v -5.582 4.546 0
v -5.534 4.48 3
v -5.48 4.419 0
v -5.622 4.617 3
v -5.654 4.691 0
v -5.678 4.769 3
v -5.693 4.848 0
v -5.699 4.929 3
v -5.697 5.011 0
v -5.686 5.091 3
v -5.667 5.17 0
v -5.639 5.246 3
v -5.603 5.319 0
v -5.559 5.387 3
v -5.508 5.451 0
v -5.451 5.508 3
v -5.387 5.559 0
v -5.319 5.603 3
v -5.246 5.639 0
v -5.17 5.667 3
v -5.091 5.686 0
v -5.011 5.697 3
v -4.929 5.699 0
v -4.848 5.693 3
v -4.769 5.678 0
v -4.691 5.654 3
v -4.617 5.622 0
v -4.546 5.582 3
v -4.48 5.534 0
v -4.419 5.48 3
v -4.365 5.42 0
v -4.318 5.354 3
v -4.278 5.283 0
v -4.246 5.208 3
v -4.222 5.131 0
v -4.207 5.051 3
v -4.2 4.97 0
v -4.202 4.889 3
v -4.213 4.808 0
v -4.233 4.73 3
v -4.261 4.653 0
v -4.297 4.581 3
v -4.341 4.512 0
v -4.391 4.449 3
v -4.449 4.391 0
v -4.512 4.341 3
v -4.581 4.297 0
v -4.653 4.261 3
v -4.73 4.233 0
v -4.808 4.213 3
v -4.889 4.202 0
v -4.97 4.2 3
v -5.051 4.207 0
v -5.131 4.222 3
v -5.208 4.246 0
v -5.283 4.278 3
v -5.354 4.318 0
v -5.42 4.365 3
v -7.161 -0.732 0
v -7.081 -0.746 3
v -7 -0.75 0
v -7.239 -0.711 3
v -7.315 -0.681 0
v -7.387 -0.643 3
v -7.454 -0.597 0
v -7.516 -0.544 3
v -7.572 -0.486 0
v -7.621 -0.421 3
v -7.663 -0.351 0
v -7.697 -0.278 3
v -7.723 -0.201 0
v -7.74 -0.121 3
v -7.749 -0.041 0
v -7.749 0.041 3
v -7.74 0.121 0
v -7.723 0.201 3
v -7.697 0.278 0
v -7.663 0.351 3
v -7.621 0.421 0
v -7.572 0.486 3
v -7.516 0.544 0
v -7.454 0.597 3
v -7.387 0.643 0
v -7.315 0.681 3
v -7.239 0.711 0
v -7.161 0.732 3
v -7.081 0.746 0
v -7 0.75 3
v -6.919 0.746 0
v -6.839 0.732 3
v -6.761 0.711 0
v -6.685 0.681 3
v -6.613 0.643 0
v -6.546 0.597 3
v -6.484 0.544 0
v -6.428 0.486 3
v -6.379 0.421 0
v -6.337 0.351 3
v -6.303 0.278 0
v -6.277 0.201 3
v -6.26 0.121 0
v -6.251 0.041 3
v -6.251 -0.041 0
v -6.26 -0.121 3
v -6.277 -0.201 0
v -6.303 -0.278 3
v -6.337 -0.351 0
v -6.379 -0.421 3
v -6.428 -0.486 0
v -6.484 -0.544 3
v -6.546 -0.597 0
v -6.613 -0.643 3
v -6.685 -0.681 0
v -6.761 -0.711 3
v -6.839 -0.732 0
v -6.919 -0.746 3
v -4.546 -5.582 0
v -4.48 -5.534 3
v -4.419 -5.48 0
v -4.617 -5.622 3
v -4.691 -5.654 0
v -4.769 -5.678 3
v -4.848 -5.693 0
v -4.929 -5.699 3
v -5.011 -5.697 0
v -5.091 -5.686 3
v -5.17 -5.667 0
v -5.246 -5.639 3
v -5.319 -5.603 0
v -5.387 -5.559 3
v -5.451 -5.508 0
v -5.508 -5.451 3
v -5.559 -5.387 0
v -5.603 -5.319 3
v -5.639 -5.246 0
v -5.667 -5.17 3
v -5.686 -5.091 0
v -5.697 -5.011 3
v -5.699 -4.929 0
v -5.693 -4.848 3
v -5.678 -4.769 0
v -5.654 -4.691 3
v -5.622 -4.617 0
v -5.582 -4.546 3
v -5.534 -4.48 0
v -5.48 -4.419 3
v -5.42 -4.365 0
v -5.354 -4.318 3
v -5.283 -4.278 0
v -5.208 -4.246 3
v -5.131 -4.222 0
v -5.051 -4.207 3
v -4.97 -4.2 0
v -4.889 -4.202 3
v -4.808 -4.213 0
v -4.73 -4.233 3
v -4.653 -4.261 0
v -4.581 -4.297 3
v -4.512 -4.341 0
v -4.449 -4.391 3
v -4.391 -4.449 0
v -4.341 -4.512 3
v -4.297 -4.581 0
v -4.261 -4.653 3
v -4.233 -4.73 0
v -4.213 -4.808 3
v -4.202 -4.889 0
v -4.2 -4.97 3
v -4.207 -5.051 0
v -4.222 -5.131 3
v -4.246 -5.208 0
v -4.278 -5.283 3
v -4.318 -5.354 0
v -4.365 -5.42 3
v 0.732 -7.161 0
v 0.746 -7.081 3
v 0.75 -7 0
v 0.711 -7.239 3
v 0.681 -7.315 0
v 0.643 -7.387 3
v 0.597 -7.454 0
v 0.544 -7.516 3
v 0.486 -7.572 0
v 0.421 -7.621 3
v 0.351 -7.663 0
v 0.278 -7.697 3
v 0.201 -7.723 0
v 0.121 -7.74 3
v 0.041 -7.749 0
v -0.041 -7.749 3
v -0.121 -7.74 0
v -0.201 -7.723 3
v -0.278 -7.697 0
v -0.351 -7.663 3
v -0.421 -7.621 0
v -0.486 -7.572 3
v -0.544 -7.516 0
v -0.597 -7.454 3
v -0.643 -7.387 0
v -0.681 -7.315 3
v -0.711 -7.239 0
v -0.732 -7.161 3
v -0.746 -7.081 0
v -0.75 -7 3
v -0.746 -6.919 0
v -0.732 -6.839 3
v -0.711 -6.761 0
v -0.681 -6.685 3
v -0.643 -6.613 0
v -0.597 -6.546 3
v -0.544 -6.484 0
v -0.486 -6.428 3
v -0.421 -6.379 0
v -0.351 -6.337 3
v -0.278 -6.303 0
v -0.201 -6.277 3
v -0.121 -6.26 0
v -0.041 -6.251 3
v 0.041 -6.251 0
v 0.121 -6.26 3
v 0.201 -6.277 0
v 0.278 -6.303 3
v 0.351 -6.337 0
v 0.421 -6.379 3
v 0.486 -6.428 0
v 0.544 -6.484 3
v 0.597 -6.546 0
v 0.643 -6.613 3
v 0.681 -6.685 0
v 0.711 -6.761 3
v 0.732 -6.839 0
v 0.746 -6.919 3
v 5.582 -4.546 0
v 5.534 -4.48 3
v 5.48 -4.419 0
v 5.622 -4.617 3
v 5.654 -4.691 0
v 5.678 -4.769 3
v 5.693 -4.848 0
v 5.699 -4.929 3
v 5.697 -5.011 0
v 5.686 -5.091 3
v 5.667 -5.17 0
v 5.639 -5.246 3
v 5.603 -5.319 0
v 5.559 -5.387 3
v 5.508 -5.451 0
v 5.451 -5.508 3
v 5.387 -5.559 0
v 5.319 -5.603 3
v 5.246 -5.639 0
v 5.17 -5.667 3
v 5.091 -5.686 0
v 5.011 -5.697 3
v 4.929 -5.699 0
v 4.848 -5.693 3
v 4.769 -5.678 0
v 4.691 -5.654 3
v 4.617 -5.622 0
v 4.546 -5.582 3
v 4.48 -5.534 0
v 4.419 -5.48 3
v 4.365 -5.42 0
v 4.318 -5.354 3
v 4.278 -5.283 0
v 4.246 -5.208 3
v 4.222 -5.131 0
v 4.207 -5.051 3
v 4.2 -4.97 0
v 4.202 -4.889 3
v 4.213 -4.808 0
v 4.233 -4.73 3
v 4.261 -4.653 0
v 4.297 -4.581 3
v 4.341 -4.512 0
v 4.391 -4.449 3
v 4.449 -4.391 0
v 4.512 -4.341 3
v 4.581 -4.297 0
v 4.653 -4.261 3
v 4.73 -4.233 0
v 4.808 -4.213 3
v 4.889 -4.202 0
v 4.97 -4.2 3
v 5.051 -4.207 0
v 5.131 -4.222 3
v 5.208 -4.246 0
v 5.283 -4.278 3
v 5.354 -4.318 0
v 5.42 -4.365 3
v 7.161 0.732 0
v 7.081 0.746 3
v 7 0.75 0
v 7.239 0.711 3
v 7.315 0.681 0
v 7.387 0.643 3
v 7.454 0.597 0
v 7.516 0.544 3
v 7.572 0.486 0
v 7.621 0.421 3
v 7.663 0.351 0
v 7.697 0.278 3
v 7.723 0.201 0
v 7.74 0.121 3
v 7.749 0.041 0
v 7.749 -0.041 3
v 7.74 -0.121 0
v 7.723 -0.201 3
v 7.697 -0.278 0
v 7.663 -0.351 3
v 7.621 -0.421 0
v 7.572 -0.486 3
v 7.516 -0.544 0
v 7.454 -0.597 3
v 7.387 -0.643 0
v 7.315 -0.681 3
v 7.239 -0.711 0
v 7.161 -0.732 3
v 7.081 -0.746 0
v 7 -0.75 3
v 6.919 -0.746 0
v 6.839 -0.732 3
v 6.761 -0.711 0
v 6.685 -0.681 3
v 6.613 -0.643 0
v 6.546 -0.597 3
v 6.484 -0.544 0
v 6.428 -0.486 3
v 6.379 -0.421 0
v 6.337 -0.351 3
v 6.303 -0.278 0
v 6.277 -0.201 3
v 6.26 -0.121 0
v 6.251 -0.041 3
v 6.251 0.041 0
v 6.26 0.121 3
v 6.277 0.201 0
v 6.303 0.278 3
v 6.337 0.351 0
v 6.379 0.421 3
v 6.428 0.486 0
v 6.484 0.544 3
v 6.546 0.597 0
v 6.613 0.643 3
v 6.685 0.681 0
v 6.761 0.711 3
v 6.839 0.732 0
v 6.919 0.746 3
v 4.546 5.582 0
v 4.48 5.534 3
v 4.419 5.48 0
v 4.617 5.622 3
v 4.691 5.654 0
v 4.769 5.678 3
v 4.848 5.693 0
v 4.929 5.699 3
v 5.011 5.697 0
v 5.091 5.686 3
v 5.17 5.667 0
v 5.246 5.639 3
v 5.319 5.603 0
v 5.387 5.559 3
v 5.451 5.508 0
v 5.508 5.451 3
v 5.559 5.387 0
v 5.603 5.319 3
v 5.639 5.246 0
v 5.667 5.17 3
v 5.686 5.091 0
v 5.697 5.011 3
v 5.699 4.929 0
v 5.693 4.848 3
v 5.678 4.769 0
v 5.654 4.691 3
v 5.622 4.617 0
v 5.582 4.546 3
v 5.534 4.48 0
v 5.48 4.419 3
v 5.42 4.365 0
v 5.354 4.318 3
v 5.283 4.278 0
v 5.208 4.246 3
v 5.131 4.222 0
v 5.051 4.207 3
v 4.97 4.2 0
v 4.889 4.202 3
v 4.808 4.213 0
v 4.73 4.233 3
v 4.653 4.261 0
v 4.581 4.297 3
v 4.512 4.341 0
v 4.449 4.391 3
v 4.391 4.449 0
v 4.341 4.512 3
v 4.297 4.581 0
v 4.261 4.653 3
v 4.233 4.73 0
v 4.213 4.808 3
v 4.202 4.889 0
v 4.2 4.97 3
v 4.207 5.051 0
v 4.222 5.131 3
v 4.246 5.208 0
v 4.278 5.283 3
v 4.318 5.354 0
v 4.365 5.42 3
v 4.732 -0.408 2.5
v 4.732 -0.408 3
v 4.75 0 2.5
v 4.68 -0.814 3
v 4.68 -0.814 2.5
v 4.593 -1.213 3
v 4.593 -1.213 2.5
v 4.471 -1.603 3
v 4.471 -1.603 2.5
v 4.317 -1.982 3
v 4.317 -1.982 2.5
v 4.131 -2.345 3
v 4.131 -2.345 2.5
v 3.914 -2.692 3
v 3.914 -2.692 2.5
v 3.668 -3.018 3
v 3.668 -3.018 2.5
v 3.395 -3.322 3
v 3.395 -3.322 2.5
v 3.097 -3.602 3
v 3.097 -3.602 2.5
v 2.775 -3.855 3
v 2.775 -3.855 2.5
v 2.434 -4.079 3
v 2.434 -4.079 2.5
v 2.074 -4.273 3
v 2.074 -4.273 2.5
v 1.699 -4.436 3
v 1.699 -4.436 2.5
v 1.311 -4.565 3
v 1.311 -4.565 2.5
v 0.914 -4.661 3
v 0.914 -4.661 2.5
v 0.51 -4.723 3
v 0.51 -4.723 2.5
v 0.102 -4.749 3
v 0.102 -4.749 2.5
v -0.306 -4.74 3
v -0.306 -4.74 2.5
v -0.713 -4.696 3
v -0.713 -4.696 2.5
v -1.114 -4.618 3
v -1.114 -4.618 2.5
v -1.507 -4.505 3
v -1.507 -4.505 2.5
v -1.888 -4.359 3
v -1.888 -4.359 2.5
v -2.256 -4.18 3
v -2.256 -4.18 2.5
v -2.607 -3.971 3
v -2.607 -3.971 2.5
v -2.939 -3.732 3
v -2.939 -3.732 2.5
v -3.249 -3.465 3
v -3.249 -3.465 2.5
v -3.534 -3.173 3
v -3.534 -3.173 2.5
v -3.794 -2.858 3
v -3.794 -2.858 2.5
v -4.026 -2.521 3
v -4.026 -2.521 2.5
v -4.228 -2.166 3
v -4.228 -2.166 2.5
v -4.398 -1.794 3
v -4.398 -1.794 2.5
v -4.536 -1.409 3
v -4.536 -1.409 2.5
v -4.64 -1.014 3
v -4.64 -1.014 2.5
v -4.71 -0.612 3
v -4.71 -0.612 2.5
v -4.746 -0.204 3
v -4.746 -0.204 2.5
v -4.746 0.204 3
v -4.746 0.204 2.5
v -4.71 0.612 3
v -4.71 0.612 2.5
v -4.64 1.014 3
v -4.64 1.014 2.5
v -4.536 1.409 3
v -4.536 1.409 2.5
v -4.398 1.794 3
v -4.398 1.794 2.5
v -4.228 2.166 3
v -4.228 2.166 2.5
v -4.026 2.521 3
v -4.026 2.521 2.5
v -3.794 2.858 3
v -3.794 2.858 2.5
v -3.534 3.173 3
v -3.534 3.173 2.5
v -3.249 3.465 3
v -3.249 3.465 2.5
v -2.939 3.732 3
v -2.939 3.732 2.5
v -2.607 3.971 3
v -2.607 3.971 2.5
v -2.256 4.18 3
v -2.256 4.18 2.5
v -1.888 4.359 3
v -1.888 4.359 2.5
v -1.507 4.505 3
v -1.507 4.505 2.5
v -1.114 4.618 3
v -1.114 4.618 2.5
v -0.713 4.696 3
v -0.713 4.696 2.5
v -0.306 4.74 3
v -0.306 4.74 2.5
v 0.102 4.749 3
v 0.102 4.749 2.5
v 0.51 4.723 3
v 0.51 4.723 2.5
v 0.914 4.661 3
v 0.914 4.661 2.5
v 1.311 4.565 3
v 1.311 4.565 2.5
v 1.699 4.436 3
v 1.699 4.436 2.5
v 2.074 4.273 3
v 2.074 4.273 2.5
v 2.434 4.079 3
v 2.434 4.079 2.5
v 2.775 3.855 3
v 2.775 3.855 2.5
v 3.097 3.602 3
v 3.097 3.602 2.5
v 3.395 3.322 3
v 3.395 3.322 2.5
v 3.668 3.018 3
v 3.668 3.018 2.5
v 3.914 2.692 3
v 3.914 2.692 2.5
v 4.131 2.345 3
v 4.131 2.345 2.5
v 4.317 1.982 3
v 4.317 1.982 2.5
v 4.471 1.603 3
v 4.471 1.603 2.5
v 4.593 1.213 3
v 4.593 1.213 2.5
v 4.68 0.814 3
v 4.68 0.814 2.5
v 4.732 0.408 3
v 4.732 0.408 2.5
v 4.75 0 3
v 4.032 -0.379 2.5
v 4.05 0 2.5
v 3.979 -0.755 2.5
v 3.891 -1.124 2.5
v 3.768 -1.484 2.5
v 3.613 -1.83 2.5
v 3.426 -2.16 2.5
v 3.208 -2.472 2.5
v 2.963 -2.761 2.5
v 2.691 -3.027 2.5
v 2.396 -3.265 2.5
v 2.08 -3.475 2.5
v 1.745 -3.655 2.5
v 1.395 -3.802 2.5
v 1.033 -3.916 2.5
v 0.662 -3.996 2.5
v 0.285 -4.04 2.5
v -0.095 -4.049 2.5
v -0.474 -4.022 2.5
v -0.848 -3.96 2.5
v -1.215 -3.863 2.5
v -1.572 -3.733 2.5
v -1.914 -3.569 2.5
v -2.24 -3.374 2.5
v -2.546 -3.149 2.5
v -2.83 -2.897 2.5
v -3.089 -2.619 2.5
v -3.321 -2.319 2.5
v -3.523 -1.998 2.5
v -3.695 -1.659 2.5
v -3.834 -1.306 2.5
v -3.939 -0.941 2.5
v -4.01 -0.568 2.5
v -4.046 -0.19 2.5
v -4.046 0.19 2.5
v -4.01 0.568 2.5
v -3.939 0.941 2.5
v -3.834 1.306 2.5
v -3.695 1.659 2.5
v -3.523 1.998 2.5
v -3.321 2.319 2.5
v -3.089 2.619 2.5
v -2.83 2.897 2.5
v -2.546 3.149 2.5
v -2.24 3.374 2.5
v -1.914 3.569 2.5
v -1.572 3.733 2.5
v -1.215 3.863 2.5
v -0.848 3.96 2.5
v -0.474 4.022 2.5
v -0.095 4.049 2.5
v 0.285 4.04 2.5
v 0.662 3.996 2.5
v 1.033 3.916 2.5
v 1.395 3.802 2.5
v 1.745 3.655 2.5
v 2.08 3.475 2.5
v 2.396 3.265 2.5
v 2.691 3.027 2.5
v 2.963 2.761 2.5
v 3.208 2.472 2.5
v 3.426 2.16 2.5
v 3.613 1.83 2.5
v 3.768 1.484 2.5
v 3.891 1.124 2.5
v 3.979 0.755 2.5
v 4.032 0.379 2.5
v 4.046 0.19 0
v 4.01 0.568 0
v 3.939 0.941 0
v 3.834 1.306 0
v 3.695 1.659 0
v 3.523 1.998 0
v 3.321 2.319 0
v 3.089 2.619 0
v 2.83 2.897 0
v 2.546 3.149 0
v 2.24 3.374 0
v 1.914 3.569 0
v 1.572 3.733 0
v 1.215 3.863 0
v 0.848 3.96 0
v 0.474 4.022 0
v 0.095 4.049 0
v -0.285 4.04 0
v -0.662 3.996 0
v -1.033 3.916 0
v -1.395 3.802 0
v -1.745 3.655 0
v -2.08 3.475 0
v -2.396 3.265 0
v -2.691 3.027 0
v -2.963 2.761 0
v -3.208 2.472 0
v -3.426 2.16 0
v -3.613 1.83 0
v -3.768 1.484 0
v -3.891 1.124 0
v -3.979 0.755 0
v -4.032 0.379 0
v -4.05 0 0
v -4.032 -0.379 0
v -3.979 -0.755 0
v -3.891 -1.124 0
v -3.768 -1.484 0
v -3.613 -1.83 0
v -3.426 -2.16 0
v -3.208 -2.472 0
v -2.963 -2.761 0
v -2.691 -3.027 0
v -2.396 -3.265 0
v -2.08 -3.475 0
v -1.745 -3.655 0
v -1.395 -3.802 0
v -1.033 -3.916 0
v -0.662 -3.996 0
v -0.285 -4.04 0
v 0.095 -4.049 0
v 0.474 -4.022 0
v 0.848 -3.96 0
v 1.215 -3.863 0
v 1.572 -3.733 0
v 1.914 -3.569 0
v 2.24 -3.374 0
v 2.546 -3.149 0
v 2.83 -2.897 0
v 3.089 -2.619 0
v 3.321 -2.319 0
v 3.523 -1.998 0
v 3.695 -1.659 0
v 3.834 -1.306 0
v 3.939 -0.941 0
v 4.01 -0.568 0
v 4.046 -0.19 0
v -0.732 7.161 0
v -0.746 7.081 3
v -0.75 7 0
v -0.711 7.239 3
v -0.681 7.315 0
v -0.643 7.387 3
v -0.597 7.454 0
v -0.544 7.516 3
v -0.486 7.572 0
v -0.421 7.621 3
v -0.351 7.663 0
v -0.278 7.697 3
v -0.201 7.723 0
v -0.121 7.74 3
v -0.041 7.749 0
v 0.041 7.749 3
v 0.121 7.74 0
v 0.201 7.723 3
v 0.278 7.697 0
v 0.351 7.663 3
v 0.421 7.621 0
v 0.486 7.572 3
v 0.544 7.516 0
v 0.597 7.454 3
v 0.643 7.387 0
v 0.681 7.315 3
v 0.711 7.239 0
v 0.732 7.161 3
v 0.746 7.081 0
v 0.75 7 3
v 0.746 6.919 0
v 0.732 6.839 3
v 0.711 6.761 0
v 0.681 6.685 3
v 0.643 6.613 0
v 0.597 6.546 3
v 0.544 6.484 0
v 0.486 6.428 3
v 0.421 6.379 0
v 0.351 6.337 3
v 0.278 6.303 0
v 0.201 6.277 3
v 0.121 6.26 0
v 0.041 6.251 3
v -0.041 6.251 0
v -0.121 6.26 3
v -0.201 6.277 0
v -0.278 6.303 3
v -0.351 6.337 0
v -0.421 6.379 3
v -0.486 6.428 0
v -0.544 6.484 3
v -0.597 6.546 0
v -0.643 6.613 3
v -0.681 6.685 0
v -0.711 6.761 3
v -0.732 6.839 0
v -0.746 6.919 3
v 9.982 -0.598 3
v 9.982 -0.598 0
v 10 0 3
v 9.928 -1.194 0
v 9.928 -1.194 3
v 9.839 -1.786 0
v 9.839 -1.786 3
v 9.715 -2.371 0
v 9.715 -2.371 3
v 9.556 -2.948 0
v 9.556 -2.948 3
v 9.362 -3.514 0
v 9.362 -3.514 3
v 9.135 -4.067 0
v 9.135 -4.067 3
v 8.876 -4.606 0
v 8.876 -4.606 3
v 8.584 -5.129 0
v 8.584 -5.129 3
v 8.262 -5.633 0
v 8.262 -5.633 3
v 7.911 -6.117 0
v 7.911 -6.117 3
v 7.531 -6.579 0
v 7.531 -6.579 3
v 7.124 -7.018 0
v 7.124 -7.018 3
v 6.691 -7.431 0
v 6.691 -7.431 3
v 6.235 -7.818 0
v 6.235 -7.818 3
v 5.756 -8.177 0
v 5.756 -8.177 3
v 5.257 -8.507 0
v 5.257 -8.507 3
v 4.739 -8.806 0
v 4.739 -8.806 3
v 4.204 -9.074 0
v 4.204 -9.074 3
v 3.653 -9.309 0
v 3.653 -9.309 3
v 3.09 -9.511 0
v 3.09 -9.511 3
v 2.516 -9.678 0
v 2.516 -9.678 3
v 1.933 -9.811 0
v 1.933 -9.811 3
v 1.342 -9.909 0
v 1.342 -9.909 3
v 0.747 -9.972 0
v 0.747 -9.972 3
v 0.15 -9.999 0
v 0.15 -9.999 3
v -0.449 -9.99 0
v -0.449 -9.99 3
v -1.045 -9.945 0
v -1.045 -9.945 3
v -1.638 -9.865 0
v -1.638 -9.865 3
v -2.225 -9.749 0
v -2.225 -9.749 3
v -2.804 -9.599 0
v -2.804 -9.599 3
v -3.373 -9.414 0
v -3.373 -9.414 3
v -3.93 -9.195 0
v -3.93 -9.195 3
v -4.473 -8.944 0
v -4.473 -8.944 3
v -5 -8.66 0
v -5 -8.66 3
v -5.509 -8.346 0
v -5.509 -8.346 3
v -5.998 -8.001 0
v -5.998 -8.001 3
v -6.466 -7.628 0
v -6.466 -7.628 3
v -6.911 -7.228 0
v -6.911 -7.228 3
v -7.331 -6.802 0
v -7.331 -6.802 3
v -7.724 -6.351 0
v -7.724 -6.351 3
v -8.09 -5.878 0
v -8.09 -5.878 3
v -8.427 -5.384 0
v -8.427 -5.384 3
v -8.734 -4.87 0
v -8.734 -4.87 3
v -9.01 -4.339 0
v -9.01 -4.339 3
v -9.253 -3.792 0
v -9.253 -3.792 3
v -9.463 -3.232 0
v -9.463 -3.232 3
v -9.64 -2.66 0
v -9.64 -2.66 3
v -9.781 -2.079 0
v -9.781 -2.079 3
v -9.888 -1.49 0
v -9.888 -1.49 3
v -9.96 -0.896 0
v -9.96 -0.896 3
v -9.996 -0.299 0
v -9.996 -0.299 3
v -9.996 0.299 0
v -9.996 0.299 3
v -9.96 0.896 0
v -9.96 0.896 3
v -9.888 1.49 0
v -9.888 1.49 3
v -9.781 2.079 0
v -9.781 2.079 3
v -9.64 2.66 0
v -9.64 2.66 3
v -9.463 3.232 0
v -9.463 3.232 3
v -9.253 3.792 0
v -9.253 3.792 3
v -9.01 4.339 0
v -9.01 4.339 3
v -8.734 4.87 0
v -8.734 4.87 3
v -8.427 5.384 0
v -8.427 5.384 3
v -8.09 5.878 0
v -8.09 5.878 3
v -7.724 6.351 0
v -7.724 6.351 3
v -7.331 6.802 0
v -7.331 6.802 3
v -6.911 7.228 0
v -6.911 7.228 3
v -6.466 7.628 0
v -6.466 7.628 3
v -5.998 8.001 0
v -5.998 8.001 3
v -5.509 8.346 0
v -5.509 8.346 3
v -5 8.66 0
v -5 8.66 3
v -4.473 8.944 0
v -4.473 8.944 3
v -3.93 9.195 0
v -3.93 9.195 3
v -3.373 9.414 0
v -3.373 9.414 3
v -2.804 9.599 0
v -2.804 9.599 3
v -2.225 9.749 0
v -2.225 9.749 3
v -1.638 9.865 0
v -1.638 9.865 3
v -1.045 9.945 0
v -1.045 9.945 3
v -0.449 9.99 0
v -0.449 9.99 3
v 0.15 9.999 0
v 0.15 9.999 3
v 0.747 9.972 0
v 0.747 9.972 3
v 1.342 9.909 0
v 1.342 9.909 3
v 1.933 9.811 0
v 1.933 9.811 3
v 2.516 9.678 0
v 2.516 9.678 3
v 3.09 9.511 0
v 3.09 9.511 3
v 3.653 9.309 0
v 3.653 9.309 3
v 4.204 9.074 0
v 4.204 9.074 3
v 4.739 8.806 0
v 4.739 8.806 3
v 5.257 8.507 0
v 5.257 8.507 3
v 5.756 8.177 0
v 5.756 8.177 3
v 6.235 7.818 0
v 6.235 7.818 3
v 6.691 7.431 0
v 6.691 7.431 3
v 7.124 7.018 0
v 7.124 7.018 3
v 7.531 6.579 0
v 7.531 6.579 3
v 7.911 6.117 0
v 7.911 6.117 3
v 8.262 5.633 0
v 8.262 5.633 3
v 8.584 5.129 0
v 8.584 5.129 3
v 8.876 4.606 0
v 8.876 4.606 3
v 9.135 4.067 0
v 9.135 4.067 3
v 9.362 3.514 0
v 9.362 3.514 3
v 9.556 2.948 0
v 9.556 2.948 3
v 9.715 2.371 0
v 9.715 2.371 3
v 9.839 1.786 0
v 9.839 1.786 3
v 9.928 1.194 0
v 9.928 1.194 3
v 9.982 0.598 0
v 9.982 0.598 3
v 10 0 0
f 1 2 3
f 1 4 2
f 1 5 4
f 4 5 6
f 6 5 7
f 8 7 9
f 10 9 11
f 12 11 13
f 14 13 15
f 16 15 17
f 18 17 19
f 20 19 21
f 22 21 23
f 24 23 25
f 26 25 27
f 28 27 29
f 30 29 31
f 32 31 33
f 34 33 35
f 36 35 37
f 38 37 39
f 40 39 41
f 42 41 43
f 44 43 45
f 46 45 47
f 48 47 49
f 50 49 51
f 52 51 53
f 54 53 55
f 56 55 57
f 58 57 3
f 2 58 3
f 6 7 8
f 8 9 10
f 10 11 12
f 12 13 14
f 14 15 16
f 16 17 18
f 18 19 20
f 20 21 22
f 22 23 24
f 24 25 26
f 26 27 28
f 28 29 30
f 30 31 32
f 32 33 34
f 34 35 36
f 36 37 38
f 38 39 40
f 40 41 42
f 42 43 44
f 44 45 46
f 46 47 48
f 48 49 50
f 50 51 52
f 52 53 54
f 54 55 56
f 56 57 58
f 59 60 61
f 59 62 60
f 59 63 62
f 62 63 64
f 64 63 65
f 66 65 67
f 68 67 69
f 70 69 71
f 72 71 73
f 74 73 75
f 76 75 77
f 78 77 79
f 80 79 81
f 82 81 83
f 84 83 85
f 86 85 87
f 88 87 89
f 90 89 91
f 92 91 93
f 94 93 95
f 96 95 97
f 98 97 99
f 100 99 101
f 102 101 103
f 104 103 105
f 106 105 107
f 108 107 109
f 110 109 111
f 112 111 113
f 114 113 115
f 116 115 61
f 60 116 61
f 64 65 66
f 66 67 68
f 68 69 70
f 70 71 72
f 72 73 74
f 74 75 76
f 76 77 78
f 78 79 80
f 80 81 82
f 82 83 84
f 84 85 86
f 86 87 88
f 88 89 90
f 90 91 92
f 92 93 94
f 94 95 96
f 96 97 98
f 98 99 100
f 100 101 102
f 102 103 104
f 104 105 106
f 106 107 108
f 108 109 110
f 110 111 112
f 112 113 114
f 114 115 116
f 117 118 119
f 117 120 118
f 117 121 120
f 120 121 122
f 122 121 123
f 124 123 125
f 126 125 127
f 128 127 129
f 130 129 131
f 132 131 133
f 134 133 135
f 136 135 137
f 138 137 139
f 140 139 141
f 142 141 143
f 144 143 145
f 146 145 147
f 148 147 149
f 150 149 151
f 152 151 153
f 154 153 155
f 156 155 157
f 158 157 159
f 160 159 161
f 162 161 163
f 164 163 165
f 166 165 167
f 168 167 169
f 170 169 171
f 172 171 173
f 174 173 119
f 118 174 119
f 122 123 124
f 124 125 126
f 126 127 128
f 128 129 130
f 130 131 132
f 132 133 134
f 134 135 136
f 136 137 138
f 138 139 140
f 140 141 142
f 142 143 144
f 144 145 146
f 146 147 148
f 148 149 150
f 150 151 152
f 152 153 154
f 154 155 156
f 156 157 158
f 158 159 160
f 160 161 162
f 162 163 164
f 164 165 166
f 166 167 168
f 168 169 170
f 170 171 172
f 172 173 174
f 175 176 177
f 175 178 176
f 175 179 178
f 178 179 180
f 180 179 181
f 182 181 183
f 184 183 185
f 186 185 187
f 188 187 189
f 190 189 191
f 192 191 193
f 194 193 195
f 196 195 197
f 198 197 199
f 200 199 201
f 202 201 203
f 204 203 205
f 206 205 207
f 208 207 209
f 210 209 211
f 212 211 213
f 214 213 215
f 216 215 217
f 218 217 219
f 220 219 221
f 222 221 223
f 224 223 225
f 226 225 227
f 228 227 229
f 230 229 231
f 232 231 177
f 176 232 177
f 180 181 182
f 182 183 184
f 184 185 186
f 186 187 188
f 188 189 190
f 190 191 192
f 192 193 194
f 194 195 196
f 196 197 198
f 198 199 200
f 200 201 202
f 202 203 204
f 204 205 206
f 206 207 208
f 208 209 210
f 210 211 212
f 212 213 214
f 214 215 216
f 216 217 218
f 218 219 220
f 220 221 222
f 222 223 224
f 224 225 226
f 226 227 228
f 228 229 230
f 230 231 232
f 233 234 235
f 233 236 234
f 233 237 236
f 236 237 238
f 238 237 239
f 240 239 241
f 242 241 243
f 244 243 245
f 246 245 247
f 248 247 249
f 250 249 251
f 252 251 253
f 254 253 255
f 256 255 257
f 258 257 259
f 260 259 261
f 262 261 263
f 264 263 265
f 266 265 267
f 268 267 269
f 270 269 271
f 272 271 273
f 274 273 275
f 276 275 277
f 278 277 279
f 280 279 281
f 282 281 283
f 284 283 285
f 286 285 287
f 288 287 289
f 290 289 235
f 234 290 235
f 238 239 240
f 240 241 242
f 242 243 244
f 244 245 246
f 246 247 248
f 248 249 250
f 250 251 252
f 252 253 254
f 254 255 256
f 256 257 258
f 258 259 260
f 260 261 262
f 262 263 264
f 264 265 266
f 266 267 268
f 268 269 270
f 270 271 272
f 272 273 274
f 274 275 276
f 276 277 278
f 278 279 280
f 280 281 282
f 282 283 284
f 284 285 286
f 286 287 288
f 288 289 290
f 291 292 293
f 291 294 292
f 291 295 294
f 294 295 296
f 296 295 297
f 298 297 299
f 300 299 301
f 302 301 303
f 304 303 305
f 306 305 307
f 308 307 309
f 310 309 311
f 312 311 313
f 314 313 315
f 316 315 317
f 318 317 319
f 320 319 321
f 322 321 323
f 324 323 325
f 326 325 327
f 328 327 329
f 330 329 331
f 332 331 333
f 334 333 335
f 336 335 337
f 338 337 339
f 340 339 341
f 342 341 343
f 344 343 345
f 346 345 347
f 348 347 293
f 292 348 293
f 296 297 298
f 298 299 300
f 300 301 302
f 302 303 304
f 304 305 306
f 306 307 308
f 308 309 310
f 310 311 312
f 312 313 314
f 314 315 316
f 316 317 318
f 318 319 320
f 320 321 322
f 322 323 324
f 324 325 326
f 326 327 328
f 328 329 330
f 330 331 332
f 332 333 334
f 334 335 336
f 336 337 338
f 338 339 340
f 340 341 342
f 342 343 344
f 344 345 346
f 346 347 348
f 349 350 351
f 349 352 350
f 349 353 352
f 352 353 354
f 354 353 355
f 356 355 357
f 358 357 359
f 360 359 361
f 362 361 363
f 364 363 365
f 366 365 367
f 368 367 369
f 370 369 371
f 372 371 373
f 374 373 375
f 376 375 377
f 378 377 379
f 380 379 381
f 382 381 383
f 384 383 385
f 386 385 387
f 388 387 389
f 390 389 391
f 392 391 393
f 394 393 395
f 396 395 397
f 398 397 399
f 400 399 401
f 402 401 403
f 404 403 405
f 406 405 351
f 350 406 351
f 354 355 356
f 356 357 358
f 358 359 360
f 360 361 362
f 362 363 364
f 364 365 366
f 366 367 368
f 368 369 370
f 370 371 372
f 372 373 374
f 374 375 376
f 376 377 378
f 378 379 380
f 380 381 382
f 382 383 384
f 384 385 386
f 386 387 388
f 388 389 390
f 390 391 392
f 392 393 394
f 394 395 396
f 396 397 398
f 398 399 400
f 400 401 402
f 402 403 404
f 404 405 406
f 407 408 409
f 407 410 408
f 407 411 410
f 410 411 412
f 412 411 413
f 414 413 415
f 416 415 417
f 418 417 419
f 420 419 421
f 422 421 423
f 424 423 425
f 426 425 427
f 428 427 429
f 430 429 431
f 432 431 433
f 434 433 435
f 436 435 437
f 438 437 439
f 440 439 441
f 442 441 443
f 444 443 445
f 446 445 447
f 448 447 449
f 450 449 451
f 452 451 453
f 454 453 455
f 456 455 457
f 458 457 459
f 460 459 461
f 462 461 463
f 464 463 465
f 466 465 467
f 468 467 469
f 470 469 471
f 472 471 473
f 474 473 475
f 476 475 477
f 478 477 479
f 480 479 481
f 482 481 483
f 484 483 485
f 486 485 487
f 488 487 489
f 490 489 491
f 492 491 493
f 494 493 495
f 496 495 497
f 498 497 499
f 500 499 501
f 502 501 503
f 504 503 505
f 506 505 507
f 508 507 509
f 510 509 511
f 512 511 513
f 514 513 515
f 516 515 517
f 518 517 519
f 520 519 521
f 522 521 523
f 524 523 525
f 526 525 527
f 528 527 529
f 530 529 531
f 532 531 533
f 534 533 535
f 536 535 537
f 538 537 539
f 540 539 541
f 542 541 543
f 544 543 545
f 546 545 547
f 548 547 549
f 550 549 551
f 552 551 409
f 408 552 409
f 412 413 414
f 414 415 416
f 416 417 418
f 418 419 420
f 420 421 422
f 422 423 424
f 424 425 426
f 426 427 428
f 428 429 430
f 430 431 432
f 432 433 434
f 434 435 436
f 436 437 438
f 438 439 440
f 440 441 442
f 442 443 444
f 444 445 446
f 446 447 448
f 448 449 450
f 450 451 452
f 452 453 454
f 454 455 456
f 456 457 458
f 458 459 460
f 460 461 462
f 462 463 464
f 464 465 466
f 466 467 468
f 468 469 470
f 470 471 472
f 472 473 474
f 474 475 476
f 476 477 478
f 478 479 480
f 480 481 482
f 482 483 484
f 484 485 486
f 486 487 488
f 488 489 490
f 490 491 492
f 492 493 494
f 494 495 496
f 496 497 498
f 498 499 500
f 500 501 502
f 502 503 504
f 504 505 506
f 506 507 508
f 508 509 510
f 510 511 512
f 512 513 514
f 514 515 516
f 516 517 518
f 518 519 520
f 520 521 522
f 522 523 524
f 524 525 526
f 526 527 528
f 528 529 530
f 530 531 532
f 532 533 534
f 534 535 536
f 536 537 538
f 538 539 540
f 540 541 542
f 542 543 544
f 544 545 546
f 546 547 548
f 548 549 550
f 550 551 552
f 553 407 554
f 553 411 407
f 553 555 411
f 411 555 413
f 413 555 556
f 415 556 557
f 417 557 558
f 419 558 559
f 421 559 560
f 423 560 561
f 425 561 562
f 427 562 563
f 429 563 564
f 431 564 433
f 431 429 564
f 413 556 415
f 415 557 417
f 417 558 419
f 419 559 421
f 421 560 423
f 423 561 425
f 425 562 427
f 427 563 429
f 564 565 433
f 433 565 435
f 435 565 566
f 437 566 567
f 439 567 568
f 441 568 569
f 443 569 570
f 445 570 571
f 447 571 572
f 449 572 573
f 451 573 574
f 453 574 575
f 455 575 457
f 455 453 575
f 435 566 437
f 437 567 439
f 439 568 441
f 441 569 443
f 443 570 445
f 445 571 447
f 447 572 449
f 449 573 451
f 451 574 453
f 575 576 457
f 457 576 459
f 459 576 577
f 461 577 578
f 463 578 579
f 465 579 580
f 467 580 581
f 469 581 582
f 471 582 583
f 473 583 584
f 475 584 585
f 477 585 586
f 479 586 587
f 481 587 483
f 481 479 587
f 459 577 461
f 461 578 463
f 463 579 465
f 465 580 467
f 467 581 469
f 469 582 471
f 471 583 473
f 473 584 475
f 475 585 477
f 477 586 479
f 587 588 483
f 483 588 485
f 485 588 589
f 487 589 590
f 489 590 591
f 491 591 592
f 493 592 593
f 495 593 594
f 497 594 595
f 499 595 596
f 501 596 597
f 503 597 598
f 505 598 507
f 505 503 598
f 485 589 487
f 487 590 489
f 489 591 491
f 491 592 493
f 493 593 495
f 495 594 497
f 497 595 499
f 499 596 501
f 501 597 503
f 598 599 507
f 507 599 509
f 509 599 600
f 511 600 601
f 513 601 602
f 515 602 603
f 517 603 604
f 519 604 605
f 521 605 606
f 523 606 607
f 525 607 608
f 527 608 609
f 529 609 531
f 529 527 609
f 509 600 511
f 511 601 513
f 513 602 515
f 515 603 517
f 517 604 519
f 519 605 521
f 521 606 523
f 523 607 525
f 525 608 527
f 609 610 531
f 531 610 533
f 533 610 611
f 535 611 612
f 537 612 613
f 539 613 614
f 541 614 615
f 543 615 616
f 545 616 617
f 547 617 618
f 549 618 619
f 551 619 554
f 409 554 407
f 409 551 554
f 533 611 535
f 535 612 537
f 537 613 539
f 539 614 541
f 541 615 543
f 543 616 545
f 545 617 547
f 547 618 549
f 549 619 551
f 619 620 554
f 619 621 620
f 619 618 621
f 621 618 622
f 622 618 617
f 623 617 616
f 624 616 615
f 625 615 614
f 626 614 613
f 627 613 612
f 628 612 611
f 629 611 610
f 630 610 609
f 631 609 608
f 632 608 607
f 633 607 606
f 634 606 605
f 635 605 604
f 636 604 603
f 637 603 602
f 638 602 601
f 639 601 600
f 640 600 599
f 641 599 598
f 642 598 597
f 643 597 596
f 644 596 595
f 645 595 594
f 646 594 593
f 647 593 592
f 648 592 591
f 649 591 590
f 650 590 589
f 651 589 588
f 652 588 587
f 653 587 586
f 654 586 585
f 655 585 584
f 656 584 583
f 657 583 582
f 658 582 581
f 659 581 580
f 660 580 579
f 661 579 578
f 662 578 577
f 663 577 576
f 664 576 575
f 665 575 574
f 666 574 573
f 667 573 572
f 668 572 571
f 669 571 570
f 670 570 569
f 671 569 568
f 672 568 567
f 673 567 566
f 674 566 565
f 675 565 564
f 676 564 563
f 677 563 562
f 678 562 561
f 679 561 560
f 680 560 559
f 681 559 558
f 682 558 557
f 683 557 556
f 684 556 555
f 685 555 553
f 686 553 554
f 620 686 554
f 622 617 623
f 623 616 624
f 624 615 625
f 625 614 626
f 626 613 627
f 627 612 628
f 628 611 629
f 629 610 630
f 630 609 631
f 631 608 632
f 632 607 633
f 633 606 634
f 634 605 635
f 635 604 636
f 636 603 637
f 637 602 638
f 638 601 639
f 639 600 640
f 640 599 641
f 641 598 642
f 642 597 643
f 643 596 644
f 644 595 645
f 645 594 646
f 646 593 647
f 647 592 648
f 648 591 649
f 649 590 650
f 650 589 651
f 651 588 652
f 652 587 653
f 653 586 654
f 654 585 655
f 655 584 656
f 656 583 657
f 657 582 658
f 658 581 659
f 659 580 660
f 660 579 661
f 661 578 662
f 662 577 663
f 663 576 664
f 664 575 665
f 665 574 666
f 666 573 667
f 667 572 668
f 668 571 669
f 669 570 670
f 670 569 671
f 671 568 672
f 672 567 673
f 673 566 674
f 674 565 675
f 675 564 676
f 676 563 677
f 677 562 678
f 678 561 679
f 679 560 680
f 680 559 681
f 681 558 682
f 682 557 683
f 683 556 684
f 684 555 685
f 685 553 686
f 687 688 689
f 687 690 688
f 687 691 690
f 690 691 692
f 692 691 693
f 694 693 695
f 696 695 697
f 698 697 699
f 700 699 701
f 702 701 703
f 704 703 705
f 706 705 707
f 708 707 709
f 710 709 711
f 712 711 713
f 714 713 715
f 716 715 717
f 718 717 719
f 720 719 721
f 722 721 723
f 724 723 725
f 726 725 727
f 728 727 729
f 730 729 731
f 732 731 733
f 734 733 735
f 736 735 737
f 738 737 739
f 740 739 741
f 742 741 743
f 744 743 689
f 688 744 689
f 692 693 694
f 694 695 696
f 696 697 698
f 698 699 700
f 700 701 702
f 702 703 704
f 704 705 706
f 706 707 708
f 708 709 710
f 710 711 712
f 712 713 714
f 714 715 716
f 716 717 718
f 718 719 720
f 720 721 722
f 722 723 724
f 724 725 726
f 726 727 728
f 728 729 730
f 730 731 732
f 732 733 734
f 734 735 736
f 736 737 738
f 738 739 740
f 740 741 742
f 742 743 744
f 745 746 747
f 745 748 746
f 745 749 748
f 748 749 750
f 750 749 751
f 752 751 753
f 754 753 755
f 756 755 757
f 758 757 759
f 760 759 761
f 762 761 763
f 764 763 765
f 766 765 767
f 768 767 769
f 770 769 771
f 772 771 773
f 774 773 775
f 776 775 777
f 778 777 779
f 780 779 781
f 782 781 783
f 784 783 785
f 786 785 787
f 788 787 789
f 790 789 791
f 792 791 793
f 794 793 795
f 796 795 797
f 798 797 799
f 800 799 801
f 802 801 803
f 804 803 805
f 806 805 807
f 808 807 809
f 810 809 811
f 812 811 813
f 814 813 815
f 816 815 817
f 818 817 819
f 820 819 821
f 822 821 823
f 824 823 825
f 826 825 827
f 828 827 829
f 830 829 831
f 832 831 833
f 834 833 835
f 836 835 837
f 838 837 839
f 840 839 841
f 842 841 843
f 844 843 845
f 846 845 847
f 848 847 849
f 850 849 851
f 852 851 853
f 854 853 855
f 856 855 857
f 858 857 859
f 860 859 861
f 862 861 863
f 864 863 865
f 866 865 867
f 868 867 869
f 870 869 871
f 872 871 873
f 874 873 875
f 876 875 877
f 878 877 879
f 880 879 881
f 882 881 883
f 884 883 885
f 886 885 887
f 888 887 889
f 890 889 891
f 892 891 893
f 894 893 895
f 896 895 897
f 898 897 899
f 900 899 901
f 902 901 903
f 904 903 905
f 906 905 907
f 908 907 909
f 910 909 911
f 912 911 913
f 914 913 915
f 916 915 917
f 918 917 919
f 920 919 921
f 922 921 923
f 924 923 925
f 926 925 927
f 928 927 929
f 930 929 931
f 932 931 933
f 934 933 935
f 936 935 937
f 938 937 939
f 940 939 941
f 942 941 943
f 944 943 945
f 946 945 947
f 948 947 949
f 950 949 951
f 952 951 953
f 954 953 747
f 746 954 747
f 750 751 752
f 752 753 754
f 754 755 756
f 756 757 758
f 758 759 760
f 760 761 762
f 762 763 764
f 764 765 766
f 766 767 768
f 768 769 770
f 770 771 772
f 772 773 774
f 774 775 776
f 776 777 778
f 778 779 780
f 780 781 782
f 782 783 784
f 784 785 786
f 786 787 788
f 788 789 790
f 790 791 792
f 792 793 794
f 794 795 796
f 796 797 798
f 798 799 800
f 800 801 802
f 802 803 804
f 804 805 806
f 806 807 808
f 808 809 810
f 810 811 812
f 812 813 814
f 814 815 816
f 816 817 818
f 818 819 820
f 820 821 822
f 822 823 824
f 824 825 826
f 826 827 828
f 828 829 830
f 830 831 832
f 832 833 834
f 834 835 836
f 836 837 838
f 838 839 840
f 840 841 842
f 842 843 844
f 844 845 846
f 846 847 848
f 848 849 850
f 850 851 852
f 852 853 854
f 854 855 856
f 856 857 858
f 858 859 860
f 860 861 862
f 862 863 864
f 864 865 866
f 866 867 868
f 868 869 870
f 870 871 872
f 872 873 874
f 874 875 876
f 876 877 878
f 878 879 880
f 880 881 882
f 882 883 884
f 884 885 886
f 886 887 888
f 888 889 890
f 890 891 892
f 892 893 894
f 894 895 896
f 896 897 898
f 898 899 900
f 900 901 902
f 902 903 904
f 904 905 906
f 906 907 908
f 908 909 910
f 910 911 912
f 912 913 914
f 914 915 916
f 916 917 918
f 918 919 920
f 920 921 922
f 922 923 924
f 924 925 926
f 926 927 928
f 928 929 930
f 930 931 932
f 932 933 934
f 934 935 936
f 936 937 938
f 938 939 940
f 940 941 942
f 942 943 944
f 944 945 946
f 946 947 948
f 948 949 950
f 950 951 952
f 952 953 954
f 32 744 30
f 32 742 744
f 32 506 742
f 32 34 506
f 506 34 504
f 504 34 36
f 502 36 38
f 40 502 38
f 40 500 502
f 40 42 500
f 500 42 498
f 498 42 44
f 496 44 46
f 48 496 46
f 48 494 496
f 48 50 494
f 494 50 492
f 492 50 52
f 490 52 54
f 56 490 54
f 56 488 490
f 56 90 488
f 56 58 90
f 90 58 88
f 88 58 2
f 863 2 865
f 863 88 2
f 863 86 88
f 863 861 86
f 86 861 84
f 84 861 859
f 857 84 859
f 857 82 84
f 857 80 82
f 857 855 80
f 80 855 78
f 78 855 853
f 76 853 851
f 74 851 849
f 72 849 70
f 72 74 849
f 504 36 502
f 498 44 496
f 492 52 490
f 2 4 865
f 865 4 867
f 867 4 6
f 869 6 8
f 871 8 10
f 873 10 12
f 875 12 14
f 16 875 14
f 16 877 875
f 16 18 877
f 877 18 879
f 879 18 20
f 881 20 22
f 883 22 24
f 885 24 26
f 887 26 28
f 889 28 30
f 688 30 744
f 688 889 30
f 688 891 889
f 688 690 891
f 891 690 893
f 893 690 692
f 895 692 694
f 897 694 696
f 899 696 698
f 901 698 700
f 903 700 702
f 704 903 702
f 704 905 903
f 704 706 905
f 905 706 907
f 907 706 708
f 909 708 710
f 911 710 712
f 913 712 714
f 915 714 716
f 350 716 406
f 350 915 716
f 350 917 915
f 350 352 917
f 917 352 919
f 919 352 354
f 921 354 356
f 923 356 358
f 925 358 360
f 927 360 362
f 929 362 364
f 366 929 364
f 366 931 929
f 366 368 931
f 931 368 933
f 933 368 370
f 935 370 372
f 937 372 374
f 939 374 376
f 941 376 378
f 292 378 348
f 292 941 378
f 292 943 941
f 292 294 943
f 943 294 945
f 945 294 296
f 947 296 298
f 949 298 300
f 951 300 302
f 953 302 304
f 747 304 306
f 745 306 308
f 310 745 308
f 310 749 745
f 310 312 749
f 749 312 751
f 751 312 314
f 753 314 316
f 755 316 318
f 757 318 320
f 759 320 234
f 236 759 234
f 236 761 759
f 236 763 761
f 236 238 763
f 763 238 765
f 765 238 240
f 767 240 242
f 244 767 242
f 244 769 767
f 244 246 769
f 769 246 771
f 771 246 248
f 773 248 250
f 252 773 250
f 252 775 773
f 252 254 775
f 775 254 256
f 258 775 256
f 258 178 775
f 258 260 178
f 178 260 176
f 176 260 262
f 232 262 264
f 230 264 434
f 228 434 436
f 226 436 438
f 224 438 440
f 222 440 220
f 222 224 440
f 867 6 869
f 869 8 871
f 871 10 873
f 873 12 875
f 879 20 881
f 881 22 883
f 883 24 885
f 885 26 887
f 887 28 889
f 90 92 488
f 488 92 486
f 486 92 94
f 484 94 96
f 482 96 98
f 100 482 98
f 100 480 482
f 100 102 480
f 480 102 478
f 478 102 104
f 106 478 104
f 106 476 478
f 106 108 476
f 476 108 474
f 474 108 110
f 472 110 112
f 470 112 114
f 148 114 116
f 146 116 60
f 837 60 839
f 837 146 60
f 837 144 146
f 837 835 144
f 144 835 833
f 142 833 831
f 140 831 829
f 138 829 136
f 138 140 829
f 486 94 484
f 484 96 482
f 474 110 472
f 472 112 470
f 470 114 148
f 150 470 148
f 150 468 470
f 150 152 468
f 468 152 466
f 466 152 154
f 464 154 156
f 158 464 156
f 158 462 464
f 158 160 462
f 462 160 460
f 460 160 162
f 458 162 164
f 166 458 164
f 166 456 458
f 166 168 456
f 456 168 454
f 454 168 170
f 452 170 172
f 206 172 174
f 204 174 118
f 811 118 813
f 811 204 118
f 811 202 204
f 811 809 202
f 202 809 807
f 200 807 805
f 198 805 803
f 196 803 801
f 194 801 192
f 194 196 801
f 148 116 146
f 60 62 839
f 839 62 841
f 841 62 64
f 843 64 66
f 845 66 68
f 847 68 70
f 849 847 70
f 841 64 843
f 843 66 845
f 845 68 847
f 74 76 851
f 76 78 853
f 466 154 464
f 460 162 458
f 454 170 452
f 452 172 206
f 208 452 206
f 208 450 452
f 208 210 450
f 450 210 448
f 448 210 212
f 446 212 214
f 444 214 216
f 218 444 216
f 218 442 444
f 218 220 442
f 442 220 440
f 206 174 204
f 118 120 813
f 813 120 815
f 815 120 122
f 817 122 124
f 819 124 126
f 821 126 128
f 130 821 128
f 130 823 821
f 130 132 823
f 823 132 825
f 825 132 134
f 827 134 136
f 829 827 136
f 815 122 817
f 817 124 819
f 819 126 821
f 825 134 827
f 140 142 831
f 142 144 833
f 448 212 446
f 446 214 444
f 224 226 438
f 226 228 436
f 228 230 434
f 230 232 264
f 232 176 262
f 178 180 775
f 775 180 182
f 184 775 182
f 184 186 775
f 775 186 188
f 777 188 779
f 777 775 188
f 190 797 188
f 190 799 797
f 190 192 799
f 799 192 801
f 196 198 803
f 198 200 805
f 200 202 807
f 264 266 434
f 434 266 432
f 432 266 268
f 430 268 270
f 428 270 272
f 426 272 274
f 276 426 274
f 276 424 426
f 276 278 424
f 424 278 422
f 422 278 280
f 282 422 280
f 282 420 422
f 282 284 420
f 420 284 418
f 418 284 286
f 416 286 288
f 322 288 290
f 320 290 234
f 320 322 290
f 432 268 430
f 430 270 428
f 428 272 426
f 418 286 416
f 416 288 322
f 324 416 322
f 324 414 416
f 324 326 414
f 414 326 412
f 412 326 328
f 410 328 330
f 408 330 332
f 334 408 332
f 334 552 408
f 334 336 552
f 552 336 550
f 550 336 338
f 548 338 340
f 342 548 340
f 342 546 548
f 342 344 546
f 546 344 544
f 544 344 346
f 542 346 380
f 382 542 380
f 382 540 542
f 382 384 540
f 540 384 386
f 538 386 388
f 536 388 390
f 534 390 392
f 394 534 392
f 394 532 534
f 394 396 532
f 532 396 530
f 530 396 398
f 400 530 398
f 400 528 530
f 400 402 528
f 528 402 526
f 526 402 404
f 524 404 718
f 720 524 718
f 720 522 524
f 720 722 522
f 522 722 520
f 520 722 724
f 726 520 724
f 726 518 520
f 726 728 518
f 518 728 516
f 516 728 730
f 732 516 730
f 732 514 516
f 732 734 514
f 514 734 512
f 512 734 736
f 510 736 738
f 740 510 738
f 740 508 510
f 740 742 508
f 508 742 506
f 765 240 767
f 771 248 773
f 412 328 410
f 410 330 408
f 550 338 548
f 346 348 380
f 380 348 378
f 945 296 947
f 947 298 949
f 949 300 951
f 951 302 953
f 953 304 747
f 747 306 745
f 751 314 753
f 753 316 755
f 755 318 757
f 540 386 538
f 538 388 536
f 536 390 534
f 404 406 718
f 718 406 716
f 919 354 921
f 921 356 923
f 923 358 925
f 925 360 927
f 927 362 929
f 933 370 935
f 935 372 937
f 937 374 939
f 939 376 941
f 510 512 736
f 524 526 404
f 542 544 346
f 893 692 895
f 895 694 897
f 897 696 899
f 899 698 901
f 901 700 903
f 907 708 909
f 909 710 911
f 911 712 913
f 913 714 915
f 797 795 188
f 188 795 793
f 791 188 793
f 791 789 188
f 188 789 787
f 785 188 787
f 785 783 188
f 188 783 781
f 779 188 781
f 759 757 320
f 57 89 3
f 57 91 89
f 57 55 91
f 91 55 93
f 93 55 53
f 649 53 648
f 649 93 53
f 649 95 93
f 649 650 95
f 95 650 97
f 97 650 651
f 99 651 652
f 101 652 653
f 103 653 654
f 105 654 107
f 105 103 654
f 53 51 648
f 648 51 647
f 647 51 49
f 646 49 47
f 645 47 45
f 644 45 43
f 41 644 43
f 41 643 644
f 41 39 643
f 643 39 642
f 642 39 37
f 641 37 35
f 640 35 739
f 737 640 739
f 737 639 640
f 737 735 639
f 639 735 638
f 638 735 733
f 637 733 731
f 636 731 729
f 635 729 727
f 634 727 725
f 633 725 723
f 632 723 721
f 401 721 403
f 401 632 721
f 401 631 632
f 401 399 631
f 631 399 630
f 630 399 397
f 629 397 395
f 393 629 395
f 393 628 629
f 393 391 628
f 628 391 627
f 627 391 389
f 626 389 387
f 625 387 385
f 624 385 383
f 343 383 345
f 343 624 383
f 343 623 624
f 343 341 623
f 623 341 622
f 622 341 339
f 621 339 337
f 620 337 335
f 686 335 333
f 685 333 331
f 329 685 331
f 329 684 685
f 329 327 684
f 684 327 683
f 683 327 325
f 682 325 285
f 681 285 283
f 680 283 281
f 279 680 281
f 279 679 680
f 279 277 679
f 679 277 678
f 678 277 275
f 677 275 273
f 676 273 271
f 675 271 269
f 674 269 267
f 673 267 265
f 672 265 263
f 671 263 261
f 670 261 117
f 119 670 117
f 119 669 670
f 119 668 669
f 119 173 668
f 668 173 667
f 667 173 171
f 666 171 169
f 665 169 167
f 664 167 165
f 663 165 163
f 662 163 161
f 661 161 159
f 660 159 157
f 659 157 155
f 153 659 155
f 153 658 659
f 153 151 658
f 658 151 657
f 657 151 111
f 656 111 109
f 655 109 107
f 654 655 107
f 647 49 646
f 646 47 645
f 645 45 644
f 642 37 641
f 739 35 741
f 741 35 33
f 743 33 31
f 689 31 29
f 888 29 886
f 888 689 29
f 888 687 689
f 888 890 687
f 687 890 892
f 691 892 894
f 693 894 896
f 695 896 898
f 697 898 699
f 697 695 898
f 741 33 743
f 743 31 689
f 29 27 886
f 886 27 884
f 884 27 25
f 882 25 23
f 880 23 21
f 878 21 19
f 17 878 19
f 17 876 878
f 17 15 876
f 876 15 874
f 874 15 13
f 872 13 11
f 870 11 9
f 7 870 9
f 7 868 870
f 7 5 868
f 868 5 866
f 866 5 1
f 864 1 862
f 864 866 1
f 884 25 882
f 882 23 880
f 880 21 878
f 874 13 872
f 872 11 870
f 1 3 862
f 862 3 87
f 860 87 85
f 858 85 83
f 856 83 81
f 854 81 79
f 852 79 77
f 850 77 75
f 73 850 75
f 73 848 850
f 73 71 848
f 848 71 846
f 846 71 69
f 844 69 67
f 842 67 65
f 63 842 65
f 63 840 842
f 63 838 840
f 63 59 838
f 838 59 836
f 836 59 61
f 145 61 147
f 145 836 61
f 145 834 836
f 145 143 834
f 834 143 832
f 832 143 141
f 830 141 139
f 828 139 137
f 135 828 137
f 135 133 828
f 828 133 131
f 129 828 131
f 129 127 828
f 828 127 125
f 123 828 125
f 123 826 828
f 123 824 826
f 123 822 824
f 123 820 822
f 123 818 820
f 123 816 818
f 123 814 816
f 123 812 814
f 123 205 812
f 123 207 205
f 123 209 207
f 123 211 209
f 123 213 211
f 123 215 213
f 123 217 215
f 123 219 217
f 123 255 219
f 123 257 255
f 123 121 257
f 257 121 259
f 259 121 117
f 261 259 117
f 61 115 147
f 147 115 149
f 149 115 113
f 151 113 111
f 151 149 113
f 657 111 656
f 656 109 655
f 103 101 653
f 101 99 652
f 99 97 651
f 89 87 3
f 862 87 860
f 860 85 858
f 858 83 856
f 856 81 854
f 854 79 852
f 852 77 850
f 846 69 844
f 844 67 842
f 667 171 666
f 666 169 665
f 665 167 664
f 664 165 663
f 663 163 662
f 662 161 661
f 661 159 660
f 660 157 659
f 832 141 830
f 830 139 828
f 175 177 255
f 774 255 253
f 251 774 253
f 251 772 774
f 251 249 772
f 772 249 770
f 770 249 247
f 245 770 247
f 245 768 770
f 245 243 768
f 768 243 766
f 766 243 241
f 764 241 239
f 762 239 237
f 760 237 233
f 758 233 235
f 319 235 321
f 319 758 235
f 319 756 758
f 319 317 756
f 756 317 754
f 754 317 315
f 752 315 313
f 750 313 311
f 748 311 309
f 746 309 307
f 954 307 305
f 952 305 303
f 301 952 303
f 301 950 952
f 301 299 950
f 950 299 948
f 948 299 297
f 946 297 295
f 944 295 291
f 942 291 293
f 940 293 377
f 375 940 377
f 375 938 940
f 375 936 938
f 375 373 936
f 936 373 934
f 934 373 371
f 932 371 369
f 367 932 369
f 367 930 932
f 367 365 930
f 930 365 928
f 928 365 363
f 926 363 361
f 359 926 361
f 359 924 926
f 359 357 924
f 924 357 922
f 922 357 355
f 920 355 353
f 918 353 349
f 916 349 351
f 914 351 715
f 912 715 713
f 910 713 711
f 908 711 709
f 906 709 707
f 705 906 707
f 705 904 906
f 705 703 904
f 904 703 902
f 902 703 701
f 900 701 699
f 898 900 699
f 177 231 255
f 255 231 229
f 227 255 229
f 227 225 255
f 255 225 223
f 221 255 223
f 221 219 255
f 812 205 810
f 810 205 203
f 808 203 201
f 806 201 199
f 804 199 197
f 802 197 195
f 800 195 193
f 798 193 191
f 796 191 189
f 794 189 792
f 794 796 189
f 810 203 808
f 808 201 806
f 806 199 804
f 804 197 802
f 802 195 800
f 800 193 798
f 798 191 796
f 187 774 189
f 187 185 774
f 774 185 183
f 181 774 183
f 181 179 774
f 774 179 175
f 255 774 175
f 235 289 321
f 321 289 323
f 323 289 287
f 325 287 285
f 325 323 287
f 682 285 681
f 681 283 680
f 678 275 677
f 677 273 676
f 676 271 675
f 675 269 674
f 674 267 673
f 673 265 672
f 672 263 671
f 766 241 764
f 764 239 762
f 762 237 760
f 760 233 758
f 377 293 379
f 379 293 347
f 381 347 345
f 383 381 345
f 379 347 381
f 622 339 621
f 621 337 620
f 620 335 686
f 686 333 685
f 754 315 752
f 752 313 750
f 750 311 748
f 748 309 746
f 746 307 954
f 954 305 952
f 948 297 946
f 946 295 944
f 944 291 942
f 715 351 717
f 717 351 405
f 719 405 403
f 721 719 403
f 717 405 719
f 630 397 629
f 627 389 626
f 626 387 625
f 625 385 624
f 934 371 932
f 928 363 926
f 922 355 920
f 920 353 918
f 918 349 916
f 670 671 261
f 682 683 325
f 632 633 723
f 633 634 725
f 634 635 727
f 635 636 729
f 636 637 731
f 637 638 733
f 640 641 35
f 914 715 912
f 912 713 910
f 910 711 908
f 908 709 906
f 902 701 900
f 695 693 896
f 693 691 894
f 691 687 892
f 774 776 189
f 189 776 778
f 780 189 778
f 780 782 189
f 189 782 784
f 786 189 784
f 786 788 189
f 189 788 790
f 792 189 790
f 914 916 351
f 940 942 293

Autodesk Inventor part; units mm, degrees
ref_plane "YZ Plane" through (0, 0, 0) normal (1, 0, 0) x (0, 1, 0)
ref_plane "XZ Plane" through (0, 0, 0) normal (0, 1, 0) x (-1, 0, 0)
ref_plane "XY Plane" through (0, 0, 0) normal (0, 0, 1) x (1, 0, 0)
sketch "スケッチ1" plane through (0, 0, 0) normal (0, 0, 1) x (1, 0, 0)
  circle A0 centre (0, 0) radius 10
  dimension "d0" = 20
extrude "押し出し1" add sketch "スケッチ1" along normal blind 3
sketch "スケッチ5" plane through (0, 0, 3) normal (0, 0, 1) x (1, 0, 0)
  circle A0 centre (0, 7) radius 1
  circle A1 centre (0, 0) radius 10 projected
  dimension "d30" = 2
  dimension "d77" = 0
  dimension "d78" = 7
hole "穴4" at (0, 7, 3) direction (0, 0, -1) diameter 1.5 end through all
sketch "スケッチ6" plane through (0, 0, 0) normal (0, 0, -1) x (-1, 0, 0)
  circle A0 centre (0, 0) radius 10 projected
  circle A1 centre (0, 0) radius 4.05
  dimension "d66" = 8.1
hole "穴5" at (0, 0, 0) direction (0, 0, 1) diameter 8.1 end through all
sketch "スケッチ2" plane through (0, 0, 3) normal (0, 0, 1) x (1, 0, 0)
  circle A0 centre (0, 0) radius 10 projected
  circle A1 centre (0, 0) radius 4.75
  dimension "d3" = 9.5
extrude "押し出し4" cut sketch "スケッチ2" against normal blind 0.5 contours A1
pattern_circular "円形状パターン3" count 8 over 360 about axis through (0, 0, 28.4429) along (0, 0, -1) of "穴4"
properties part number "03" material "アルミニウム 6061"
